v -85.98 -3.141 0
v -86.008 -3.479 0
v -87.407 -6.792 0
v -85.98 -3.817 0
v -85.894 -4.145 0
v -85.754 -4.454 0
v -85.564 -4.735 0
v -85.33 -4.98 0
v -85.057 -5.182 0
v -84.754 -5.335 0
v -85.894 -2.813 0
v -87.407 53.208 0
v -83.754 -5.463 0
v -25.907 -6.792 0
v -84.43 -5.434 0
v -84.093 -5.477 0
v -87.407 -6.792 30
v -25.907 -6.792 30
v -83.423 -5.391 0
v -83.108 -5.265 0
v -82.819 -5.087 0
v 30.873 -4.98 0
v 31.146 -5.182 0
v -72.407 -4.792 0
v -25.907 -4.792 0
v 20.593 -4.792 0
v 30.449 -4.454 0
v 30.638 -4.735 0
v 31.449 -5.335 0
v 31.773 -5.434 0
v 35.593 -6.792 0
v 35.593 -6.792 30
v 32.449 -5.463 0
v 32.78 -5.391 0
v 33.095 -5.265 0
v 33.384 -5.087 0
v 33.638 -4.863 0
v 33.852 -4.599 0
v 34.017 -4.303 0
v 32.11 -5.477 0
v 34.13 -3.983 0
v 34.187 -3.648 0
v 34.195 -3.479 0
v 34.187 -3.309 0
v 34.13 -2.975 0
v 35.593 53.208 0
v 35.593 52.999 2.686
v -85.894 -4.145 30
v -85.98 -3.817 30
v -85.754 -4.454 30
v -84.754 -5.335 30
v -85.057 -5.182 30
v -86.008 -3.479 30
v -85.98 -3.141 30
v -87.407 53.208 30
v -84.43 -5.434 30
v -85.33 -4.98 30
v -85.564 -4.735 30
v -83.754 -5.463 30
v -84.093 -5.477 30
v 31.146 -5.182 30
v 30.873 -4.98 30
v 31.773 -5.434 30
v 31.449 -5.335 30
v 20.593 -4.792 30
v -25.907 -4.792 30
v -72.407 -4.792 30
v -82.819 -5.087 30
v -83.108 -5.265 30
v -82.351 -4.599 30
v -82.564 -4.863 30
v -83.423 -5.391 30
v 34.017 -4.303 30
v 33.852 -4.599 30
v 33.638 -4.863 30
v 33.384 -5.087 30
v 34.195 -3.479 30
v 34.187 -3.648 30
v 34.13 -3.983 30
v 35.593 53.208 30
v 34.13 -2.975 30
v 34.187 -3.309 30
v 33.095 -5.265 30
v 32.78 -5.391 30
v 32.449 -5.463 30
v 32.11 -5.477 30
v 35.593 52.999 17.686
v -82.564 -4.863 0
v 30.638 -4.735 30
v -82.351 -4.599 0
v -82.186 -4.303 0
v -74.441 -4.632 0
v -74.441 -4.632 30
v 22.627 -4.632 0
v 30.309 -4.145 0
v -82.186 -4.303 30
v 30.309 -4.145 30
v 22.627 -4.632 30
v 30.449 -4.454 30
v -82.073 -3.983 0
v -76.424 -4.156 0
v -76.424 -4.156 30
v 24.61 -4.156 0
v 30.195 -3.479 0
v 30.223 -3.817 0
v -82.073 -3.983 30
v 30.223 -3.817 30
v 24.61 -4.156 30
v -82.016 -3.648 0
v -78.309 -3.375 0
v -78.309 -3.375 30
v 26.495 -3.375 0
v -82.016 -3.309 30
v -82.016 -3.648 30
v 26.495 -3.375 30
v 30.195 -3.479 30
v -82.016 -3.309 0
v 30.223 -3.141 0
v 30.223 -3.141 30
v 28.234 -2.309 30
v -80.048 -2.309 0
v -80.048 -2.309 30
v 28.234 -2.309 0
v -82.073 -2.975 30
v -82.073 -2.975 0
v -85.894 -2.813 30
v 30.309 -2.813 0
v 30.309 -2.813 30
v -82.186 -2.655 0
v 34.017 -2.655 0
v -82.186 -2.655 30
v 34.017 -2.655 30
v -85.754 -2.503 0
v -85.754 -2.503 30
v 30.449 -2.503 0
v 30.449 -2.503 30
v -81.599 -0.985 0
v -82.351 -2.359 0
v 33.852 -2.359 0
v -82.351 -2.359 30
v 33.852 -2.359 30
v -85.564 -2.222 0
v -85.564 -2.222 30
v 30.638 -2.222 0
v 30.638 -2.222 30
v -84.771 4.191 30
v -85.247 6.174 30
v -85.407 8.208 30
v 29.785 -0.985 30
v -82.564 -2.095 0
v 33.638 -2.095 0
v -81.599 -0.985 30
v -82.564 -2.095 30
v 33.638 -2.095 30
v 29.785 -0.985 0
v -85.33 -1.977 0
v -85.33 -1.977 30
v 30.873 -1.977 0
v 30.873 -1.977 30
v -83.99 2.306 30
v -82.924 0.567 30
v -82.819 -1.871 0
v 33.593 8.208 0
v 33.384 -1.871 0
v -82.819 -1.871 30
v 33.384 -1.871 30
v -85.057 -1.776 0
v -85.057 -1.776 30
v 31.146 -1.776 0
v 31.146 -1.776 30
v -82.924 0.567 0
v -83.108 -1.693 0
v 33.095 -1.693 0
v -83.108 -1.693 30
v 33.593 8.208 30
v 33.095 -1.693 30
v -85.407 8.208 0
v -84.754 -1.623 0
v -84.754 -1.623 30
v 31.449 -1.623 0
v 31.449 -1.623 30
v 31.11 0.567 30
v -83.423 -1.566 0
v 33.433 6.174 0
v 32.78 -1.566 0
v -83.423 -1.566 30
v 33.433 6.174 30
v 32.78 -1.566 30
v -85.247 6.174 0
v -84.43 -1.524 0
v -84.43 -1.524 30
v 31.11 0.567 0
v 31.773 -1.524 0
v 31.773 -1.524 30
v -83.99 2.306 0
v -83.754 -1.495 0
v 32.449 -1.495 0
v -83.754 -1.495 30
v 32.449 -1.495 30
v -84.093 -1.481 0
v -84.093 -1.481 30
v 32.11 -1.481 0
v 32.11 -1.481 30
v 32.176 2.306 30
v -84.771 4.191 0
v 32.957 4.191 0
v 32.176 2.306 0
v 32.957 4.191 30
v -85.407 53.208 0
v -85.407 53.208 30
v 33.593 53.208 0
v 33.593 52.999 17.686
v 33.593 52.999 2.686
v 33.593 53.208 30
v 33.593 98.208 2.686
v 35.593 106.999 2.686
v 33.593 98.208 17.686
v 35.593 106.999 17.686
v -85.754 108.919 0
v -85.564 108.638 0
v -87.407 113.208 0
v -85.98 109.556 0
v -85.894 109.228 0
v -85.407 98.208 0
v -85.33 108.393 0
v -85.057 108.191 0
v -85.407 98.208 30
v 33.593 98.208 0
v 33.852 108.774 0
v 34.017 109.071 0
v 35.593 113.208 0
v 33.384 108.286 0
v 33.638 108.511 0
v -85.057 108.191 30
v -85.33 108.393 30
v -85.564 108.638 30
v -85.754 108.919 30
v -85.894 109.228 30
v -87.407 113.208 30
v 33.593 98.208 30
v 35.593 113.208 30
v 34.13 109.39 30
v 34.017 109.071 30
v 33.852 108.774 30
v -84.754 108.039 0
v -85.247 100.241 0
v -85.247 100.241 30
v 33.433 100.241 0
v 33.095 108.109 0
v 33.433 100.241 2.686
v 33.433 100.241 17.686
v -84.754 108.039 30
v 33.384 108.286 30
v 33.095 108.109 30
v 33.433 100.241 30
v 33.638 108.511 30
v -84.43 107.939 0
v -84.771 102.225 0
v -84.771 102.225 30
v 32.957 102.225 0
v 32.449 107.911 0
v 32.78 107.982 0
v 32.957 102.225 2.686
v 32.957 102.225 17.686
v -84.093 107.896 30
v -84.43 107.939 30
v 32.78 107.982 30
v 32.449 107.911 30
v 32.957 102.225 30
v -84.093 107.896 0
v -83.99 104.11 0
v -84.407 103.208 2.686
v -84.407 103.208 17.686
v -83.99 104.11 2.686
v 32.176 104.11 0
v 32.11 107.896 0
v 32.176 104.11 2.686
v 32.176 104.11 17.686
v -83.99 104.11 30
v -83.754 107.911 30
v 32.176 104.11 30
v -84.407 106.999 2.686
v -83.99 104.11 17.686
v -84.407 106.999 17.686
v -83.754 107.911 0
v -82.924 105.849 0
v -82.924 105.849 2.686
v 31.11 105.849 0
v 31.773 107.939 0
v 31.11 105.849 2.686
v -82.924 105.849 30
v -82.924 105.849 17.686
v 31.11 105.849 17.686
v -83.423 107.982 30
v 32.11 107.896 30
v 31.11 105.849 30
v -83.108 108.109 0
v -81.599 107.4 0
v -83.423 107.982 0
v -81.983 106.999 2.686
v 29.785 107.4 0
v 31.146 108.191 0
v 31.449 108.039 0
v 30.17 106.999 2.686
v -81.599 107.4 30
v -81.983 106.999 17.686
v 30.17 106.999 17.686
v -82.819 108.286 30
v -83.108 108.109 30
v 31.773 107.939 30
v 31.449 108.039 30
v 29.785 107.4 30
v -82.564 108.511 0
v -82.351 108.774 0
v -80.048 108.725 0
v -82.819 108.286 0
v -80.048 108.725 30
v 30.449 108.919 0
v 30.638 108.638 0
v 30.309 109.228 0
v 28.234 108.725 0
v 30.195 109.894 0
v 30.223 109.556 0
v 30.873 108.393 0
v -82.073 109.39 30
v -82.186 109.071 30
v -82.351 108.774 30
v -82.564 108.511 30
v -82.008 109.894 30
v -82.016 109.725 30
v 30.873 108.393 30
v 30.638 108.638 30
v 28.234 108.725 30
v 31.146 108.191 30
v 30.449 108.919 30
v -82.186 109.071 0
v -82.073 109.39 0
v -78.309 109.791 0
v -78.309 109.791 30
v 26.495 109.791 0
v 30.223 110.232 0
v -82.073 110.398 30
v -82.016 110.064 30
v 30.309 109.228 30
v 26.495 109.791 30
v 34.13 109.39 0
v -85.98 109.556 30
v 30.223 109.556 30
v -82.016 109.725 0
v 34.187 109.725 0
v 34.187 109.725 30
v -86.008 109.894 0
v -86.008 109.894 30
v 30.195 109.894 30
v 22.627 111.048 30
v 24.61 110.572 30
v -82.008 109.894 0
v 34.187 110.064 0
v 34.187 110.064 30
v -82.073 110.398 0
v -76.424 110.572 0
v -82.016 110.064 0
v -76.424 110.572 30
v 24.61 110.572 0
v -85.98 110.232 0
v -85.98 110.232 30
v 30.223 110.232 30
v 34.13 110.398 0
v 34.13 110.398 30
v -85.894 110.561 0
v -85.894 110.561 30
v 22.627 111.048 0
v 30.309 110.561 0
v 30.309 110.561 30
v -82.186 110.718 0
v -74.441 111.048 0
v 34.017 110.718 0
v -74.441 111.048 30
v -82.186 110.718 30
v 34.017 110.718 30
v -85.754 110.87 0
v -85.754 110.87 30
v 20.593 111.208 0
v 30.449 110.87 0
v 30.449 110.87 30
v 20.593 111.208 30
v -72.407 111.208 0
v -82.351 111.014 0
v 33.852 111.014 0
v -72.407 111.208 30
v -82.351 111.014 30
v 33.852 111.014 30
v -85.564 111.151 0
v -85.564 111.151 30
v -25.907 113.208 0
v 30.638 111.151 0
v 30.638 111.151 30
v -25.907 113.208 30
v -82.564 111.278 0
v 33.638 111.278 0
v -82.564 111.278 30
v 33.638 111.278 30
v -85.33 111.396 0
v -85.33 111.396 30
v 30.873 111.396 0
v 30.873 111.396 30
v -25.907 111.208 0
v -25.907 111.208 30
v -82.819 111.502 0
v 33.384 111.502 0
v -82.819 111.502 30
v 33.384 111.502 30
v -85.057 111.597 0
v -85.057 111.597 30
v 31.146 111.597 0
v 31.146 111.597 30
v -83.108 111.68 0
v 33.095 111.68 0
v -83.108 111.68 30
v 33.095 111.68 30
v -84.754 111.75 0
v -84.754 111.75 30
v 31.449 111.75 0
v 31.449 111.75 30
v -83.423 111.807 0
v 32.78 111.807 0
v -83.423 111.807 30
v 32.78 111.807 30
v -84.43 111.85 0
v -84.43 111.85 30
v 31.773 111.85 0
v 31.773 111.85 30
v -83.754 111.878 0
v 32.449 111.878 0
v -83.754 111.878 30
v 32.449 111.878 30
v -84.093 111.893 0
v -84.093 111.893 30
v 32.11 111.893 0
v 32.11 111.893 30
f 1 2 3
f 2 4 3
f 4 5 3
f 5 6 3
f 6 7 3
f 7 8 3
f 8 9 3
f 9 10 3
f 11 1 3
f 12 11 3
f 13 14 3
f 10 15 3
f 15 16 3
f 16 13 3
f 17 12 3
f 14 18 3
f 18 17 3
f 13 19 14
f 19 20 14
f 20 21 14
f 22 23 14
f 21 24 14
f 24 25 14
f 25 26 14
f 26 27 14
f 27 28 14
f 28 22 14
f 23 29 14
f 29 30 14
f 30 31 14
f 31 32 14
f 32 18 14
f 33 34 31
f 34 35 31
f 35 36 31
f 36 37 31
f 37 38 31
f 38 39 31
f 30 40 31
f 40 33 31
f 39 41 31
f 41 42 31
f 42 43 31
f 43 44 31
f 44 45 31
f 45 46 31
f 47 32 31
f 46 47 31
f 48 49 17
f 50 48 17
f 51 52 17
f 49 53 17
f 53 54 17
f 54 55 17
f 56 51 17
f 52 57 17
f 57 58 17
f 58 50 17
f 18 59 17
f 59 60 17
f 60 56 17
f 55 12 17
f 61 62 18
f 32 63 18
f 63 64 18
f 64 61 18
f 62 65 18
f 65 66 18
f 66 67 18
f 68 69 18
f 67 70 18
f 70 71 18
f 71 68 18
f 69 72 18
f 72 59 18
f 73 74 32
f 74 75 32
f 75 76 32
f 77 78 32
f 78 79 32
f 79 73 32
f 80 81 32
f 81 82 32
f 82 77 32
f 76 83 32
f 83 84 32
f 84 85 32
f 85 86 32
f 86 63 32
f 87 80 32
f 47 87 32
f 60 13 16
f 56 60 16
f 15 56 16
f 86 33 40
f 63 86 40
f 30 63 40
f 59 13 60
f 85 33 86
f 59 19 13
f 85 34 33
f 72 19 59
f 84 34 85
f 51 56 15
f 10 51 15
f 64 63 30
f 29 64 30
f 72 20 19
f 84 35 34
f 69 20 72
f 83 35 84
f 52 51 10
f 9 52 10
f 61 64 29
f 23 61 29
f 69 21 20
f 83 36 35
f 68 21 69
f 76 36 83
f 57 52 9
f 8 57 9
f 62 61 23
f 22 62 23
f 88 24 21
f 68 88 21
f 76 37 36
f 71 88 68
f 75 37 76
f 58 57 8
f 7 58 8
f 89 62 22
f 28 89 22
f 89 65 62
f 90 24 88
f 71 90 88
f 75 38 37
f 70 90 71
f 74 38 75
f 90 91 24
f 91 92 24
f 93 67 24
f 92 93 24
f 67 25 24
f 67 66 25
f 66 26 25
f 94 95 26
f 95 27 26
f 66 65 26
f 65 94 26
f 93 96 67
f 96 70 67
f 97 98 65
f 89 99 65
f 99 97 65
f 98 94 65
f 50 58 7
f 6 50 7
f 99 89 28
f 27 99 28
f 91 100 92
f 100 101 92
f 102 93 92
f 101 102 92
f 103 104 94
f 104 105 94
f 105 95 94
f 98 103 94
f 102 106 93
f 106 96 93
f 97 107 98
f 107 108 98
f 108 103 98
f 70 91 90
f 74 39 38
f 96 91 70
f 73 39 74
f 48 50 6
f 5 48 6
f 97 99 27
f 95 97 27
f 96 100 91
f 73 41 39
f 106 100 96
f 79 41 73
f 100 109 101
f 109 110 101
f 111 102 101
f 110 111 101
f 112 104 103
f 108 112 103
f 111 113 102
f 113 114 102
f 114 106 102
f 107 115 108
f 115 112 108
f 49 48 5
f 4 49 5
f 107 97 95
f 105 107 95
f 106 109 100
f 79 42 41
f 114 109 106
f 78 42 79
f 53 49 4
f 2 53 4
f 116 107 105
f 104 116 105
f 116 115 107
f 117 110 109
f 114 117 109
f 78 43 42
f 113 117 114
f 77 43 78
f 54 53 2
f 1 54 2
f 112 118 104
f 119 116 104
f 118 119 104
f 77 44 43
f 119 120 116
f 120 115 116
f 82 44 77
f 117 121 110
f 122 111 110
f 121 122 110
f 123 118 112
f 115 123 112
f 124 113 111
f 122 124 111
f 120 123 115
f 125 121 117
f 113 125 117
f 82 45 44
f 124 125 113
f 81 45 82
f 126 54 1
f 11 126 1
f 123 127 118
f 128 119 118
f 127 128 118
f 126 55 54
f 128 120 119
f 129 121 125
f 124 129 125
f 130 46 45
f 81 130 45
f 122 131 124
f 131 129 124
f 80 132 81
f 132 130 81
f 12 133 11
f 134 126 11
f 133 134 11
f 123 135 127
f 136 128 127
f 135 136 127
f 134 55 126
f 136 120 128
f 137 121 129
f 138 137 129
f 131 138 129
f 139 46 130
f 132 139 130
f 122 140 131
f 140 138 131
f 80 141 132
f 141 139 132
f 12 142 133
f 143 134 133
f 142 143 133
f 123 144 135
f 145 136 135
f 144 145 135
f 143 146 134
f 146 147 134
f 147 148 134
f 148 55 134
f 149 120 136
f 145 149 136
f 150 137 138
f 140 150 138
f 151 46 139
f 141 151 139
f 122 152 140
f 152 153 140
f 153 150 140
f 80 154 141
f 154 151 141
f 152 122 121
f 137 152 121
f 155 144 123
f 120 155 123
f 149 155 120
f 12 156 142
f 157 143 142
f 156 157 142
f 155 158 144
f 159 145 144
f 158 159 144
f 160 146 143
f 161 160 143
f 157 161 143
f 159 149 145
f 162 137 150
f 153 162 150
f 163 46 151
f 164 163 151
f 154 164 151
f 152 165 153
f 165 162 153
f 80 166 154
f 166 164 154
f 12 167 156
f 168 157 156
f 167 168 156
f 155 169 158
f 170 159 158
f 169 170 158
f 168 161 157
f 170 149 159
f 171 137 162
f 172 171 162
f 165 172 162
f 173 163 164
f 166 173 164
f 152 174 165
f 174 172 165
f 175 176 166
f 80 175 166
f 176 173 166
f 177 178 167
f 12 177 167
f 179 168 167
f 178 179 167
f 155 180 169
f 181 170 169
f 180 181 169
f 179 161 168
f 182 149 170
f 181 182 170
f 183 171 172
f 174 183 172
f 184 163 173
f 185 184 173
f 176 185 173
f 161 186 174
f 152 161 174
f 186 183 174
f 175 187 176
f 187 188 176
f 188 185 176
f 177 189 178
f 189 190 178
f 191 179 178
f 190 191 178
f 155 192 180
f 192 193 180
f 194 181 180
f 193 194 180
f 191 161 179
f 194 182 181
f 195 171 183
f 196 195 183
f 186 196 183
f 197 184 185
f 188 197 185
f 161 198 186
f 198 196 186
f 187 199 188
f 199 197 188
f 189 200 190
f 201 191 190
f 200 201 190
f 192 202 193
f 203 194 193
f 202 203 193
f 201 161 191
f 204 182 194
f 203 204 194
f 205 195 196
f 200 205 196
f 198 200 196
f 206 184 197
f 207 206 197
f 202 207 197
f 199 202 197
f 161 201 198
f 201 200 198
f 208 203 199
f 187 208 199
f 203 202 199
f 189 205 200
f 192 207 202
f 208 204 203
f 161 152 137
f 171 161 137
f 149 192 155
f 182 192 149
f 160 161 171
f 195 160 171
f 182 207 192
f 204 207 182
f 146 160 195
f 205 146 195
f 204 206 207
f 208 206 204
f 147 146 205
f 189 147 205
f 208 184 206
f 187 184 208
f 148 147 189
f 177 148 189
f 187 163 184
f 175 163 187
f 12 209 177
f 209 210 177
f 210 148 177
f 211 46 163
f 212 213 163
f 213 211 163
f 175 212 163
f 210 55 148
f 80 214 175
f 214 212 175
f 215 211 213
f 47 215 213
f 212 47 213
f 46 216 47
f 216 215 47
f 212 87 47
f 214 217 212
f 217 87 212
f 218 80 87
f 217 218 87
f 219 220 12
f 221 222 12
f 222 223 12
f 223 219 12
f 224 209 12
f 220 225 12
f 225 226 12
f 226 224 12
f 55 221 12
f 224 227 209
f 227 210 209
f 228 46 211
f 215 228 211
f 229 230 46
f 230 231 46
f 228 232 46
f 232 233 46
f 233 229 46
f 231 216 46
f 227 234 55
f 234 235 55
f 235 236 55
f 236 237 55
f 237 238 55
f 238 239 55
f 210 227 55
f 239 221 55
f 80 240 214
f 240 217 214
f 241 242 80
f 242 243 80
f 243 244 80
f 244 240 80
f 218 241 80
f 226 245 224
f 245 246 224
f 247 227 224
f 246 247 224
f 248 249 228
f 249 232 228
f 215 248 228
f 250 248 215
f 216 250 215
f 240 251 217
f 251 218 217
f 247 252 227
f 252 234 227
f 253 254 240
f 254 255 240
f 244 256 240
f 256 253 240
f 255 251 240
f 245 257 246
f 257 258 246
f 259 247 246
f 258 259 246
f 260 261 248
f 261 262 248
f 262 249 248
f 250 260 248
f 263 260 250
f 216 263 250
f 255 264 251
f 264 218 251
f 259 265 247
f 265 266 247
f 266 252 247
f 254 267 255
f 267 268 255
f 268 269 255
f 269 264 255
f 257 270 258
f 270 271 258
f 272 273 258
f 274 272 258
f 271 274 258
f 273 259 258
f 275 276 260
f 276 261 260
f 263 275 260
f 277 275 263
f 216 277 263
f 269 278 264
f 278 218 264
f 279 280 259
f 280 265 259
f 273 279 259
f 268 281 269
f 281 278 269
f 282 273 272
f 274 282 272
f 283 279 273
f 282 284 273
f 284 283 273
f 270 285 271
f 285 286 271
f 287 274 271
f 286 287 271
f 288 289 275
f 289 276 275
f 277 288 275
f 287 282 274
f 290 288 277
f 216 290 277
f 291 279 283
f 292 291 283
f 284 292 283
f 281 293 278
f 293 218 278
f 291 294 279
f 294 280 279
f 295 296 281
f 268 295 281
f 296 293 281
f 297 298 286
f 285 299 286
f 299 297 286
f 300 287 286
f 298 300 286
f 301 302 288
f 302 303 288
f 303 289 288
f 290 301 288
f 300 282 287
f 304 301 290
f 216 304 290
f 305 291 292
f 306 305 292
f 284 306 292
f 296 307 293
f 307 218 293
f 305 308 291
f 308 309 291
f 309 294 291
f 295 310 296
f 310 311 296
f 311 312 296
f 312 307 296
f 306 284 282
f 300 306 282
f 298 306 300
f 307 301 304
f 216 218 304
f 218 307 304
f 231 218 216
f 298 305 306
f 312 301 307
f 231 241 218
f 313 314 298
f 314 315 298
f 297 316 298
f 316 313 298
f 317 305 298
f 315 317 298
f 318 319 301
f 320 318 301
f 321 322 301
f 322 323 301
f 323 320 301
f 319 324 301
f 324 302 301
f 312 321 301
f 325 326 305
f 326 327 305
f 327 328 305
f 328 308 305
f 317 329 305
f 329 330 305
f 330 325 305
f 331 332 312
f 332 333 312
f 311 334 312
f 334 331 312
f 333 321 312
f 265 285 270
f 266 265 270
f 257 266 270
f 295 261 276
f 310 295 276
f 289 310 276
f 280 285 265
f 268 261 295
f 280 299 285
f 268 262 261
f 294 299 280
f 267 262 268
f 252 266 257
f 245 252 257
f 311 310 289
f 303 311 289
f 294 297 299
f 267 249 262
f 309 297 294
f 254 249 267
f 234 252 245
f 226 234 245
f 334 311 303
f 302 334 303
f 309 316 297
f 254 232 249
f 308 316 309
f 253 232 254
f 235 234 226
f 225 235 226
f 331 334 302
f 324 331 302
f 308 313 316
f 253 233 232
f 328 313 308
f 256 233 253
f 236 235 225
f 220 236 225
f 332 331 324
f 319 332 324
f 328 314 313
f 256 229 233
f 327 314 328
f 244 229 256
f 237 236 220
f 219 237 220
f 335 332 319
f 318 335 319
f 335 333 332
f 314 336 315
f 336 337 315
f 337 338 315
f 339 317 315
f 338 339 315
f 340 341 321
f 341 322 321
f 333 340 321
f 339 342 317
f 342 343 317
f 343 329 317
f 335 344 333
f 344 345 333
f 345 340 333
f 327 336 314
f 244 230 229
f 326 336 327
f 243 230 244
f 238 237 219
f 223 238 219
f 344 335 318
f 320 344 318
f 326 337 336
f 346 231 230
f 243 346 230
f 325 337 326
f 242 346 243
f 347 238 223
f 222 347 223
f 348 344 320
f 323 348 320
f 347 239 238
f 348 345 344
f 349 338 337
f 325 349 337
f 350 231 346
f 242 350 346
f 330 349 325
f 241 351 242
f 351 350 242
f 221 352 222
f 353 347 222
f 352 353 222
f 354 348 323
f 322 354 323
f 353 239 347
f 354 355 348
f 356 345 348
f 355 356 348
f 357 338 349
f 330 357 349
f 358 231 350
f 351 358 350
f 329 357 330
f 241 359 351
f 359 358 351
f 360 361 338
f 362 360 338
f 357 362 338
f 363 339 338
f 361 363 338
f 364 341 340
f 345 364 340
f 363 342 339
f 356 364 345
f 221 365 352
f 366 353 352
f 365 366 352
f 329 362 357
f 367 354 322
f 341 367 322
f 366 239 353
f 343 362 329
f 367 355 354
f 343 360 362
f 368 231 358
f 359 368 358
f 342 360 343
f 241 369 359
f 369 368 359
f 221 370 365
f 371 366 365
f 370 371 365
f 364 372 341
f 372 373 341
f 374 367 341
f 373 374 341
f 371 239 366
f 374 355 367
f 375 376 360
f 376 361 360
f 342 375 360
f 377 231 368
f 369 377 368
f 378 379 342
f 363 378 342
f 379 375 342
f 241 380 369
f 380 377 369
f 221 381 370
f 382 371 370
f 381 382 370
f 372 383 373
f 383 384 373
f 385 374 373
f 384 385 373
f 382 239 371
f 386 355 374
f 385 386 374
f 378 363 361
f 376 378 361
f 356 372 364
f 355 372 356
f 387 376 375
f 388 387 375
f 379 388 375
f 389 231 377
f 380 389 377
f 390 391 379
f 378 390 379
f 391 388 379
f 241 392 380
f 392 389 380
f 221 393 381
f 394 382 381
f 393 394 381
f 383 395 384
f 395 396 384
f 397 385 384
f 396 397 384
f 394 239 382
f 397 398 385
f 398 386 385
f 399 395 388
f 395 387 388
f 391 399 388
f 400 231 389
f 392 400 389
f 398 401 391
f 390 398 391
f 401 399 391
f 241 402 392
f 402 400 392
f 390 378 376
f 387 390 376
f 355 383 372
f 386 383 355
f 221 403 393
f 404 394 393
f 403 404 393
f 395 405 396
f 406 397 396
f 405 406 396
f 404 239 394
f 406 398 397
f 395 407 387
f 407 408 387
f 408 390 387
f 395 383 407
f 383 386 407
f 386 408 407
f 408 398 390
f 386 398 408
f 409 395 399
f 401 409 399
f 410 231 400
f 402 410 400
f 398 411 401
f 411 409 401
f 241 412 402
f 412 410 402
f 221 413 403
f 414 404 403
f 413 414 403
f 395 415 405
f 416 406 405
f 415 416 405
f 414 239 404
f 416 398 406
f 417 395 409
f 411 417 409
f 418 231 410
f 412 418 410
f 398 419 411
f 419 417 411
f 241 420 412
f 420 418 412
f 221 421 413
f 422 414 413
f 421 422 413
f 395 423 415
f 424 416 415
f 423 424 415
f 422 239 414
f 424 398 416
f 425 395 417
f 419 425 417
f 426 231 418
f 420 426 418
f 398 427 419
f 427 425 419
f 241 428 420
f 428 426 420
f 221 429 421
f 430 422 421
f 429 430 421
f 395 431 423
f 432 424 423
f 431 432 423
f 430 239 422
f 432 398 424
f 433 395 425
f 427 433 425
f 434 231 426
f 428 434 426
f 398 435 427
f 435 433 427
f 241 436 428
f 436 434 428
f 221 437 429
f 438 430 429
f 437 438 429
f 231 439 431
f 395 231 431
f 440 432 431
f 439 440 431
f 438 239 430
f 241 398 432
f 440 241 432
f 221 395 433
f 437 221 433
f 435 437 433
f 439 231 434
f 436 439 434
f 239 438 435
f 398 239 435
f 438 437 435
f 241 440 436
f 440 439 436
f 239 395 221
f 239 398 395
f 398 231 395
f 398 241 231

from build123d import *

# Parameters (mm, degrees)
SKETCH_1_W          = 123
SKETCH_1_H          = 120
SKETCH_1_R          = 2
EXTRUDE_1_DEPTH     = 30
SKETCH_2_W          = 15
SKETCH_2_H          = 54
CUT_EXTRUDE_1_DEPTH = 120


with BuildPart() as part:
    # 草图1 → 凸台-拉伸1 (new body)
    with BuildSketch(Plane.XY):
        with Locations((-25.906926203, 53.207805922)):
            Rectangle(SKETCH_1_W, SKETCH_1_H)
        with Locations((-84.008388051, 109.894431899)):
            Circle(SKETCH_1_R, mode=Mode.SUBTRACT)
        with Locations(Location((32.194535644, 109.894431899, 0), (0, 0, 180))):
            Circle(SKETCH_1_R, mode=Mode.SUBTRACT)
        with Locations((32.194535644, -3.478820055)):
            Circle(SKETCH_1_R, mode=Mode.SUBTRACT)
        with Locations(Location((-84.008388051, -3.478820055, 0), (0, 0, 180))):
            Circle(SKETCH_1_R, mode=Mode.SUBTRACT)
        with BuildLine():
            Line((-72.406926203, 111.207805922), (20.593073797, 111.207805922))
            ThreePointArc((20.593073797, 111.207805922), (29.785461952, 107.400194077), (33.593073797, 98.207805922))
            Line((33.593073797, 98.207805922), (33.593073797, 8.207805922))
            ThreePointArc((33.593073797, 8.207805922), (29.785461952, -0.984582233), (20.593073797, -4.792194078))
            Line((20.593073797, -4.792194078), (-72.406926203, -4.792194078))
            ThreePointArc((-72.406926203, -4.792194078), (-81.599314359, -0.984582233), (-85.406926203, 8.207805922))
            Line((-85.406926203, 8.207805922), (-85.406926203, 98.207805922))
            ThreePointArc((-85.406926203, 98.207805922), (-81.599314359, 107.400194077), (-72.406926203, 111.207805922))
        make_face(mode=Mode.SUBTRACT)
    extrude(amount=EXTRUDE_1_DEPTH)

    # 草图2 → 切除-拉伸1 (cut)
    with BuildSketch(Plane(origin=(35.593073797, 0, 0), x_dir=(0, 0, -1), z_dir=(1, 0, 0))):
        with Locations((-10.186283232, 79.999305489)):
            Rectangle(SKETCH_2_W, SKETCH_2_H)
    extrude(amount=-CUT_EXTRUDE_1_DEPTH, mode=Mode.SUBTRACT)


solid = part.part
